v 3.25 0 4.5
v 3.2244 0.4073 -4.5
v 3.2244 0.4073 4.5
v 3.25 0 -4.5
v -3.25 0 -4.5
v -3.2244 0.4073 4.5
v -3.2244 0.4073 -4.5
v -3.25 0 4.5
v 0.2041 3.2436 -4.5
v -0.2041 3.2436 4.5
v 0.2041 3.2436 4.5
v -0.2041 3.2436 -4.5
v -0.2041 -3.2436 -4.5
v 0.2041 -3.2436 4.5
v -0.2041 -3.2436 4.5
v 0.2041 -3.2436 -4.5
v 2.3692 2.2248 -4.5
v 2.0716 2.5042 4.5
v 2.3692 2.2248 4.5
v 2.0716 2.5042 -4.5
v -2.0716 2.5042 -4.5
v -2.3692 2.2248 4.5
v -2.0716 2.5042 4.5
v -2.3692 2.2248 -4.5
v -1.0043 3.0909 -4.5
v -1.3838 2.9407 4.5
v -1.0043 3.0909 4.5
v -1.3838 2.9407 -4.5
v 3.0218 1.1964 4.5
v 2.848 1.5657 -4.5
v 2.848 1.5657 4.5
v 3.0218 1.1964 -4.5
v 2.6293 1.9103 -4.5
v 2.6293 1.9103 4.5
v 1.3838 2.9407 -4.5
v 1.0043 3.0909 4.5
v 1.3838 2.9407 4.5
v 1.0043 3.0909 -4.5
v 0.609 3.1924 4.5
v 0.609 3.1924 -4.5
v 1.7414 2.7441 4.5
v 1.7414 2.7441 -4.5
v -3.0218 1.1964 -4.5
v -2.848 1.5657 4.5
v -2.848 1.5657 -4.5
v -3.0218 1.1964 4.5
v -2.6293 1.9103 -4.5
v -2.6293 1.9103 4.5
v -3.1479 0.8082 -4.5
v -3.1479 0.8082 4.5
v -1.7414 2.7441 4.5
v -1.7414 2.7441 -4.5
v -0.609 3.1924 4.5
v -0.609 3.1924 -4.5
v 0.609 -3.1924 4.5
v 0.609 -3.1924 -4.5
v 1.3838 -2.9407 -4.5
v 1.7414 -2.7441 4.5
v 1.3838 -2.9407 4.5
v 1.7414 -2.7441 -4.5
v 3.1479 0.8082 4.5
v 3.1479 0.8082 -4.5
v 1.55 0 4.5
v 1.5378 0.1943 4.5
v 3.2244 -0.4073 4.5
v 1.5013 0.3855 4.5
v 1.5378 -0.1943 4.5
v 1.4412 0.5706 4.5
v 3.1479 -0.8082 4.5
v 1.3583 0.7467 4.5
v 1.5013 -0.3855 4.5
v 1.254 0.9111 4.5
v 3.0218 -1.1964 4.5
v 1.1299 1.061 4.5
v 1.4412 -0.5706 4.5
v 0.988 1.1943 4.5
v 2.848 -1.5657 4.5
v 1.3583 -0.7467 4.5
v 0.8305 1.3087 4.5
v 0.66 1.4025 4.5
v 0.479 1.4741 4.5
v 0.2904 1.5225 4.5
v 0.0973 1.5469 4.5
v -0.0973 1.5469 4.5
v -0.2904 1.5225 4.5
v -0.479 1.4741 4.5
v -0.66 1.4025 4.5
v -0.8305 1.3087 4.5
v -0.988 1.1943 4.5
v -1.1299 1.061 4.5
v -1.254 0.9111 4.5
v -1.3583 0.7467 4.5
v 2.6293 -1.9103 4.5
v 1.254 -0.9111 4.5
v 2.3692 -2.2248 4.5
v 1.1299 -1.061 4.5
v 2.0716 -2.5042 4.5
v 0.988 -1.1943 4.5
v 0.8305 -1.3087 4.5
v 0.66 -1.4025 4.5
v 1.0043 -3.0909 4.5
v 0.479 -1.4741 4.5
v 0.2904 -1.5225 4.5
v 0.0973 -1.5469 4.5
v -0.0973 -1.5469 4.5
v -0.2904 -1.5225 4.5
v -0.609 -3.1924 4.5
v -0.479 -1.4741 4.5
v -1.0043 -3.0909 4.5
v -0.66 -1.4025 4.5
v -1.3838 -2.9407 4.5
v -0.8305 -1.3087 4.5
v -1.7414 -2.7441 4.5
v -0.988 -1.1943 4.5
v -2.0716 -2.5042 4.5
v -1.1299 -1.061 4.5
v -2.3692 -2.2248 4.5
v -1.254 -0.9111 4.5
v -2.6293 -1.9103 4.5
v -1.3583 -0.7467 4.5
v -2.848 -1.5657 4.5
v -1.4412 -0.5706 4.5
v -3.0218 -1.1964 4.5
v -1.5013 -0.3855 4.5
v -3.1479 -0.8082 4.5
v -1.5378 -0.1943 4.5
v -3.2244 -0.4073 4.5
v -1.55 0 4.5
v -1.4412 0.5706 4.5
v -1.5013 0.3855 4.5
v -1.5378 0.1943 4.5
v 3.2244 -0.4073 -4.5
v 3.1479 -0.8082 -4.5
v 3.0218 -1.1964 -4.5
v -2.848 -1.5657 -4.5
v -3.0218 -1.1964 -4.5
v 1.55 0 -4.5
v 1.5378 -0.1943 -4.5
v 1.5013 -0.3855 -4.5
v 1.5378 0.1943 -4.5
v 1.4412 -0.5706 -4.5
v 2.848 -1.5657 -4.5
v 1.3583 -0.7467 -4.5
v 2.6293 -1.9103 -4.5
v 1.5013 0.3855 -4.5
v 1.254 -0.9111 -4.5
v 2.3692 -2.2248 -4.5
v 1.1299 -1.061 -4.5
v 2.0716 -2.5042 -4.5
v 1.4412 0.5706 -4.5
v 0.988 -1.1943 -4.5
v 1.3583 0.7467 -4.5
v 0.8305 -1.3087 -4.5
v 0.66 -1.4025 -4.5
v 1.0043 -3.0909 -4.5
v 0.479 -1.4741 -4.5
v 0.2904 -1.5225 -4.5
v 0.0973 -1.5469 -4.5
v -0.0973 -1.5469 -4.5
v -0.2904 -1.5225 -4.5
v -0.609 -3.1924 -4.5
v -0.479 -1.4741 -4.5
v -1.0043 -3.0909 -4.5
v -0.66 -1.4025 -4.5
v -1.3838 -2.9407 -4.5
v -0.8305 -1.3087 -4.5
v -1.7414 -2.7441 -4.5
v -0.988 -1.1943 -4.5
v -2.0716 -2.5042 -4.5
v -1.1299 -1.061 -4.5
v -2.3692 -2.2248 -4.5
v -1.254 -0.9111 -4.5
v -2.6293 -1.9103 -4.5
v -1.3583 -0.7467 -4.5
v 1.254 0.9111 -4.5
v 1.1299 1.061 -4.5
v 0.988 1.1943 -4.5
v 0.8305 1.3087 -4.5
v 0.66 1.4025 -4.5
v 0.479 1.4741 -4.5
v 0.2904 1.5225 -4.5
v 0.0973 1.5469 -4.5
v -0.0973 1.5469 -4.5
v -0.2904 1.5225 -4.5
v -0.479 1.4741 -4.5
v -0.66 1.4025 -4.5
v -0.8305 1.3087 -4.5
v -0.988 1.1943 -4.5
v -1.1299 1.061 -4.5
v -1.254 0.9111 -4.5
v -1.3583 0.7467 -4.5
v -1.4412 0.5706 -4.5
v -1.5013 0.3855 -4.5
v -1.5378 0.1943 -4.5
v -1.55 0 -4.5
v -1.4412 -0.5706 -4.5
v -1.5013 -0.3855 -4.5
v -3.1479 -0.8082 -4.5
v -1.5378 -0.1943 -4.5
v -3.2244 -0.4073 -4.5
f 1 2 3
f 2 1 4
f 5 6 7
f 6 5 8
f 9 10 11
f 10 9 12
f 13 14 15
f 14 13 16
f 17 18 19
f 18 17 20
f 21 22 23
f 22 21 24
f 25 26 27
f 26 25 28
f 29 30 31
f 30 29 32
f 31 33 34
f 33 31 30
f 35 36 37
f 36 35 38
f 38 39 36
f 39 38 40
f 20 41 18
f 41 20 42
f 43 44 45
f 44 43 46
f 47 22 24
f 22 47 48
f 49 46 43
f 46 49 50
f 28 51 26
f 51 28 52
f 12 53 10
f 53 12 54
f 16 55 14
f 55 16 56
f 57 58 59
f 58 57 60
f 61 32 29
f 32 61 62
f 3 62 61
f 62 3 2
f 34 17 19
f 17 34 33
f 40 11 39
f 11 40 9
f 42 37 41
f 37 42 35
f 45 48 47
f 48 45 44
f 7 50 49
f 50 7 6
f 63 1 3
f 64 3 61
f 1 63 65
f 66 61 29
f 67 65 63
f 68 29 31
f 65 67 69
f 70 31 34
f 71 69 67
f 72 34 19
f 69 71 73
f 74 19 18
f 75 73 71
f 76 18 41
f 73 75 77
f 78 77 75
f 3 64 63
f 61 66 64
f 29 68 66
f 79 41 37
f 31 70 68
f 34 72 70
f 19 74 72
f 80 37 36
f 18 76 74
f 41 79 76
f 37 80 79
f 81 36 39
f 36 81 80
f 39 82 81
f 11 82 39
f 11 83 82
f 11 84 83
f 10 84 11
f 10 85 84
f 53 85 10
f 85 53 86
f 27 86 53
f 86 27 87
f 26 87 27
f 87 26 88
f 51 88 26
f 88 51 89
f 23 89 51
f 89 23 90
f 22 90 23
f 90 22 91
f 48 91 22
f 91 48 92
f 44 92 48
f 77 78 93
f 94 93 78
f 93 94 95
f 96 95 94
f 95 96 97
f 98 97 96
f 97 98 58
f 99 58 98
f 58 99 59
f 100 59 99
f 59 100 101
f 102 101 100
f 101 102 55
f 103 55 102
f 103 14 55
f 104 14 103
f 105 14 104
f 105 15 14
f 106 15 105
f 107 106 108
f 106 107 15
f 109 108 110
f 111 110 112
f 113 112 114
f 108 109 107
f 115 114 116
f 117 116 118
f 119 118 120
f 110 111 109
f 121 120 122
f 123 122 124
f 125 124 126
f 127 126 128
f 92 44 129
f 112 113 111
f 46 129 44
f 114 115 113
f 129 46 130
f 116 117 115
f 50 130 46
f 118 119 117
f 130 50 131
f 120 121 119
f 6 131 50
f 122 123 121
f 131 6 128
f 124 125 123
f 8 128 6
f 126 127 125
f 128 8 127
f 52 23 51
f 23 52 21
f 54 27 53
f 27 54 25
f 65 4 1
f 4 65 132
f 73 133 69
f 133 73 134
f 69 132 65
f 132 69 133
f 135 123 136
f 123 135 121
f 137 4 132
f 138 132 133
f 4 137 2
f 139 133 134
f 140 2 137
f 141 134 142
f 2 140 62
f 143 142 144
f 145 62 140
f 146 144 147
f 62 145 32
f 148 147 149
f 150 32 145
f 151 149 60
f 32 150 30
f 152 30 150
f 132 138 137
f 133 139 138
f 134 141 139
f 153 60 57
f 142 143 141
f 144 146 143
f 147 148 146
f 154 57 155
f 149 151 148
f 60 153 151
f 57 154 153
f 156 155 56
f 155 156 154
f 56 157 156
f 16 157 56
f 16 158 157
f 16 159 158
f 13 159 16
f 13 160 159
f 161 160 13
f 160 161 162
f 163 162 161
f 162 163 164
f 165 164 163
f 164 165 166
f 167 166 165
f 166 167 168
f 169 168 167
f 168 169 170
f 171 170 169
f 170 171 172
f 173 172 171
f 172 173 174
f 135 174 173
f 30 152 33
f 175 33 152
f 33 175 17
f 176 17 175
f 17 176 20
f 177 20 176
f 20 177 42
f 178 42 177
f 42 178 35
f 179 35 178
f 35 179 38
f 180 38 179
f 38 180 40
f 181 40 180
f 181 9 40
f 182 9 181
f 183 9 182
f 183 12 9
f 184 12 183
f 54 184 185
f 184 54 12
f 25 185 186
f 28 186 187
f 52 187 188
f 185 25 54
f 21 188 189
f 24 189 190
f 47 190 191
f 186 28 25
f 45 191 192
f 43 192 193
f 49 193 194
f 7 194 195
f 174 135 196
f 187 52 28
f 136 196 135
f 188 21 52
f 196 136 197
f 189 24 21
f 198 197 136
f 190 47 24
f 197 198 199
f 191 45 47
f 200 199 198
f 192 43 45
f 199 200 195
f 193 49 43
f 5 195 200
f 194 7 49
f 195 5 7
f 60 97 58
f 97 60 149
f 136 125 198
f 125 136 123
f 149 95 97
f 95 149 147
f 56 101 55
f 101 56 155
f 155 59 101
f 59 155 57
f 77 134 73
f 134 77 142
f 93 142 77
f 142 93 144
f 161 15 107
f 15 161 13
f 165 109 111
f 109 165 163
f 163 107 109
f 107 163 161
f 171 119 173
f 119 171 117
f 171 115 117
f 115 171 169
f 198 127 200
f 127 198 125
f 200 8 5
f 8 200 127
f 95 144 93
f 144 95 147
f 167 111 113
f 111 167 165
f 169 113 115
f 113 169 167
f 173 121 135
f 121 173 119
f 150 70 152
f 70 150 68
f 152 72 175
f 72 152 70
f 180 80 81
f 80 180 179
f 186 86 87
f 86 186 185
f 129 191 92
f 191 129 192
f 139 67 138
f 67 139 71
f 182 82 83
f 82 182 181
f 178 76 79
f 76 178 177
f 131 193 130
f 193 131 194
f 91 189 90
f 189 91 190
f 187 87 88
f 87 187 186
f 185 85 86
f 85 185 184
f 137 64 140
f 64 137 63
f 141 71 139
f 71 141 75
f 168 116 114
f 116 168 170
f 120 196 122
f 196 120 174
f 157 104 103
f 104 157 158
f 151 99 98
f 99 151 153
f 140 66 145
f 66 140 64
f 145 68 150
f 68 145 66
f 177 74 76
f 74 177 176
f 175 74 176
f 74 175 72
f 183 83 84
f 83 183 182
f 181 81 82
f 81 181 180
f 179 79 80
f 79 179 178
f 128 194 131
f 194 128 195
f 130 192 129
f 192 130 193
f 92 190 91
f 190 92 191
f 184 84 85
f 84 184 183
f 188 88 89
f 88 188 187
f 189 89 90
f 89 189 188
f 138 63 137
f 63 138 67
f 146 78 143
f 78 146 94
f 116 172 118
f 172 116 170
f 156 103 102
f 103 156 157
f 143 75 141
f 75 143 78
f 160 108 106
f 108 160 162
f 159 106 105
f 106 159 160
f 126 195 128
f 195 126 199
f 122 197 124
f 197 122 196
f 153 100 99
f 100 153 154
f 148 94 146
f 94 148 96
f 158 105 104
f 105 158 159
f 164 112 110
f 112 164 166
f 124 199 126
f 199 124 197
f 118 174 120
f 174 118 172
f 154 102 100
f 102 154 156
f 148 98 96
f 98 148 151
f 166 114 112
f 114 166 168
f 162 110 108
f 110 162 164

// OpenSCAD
$fn = 50;


difference() {
	union() {
		translate(v = [0, 0, -4.5000000000]) {
			cylinder(h = 9, r = 3.2500000000);
		}
	}
	union() {
		translate(v = [0, 0, -100.0000000000]) {
			cylinder(h = 200, r = 1.5500000000);
		}
	}
}
